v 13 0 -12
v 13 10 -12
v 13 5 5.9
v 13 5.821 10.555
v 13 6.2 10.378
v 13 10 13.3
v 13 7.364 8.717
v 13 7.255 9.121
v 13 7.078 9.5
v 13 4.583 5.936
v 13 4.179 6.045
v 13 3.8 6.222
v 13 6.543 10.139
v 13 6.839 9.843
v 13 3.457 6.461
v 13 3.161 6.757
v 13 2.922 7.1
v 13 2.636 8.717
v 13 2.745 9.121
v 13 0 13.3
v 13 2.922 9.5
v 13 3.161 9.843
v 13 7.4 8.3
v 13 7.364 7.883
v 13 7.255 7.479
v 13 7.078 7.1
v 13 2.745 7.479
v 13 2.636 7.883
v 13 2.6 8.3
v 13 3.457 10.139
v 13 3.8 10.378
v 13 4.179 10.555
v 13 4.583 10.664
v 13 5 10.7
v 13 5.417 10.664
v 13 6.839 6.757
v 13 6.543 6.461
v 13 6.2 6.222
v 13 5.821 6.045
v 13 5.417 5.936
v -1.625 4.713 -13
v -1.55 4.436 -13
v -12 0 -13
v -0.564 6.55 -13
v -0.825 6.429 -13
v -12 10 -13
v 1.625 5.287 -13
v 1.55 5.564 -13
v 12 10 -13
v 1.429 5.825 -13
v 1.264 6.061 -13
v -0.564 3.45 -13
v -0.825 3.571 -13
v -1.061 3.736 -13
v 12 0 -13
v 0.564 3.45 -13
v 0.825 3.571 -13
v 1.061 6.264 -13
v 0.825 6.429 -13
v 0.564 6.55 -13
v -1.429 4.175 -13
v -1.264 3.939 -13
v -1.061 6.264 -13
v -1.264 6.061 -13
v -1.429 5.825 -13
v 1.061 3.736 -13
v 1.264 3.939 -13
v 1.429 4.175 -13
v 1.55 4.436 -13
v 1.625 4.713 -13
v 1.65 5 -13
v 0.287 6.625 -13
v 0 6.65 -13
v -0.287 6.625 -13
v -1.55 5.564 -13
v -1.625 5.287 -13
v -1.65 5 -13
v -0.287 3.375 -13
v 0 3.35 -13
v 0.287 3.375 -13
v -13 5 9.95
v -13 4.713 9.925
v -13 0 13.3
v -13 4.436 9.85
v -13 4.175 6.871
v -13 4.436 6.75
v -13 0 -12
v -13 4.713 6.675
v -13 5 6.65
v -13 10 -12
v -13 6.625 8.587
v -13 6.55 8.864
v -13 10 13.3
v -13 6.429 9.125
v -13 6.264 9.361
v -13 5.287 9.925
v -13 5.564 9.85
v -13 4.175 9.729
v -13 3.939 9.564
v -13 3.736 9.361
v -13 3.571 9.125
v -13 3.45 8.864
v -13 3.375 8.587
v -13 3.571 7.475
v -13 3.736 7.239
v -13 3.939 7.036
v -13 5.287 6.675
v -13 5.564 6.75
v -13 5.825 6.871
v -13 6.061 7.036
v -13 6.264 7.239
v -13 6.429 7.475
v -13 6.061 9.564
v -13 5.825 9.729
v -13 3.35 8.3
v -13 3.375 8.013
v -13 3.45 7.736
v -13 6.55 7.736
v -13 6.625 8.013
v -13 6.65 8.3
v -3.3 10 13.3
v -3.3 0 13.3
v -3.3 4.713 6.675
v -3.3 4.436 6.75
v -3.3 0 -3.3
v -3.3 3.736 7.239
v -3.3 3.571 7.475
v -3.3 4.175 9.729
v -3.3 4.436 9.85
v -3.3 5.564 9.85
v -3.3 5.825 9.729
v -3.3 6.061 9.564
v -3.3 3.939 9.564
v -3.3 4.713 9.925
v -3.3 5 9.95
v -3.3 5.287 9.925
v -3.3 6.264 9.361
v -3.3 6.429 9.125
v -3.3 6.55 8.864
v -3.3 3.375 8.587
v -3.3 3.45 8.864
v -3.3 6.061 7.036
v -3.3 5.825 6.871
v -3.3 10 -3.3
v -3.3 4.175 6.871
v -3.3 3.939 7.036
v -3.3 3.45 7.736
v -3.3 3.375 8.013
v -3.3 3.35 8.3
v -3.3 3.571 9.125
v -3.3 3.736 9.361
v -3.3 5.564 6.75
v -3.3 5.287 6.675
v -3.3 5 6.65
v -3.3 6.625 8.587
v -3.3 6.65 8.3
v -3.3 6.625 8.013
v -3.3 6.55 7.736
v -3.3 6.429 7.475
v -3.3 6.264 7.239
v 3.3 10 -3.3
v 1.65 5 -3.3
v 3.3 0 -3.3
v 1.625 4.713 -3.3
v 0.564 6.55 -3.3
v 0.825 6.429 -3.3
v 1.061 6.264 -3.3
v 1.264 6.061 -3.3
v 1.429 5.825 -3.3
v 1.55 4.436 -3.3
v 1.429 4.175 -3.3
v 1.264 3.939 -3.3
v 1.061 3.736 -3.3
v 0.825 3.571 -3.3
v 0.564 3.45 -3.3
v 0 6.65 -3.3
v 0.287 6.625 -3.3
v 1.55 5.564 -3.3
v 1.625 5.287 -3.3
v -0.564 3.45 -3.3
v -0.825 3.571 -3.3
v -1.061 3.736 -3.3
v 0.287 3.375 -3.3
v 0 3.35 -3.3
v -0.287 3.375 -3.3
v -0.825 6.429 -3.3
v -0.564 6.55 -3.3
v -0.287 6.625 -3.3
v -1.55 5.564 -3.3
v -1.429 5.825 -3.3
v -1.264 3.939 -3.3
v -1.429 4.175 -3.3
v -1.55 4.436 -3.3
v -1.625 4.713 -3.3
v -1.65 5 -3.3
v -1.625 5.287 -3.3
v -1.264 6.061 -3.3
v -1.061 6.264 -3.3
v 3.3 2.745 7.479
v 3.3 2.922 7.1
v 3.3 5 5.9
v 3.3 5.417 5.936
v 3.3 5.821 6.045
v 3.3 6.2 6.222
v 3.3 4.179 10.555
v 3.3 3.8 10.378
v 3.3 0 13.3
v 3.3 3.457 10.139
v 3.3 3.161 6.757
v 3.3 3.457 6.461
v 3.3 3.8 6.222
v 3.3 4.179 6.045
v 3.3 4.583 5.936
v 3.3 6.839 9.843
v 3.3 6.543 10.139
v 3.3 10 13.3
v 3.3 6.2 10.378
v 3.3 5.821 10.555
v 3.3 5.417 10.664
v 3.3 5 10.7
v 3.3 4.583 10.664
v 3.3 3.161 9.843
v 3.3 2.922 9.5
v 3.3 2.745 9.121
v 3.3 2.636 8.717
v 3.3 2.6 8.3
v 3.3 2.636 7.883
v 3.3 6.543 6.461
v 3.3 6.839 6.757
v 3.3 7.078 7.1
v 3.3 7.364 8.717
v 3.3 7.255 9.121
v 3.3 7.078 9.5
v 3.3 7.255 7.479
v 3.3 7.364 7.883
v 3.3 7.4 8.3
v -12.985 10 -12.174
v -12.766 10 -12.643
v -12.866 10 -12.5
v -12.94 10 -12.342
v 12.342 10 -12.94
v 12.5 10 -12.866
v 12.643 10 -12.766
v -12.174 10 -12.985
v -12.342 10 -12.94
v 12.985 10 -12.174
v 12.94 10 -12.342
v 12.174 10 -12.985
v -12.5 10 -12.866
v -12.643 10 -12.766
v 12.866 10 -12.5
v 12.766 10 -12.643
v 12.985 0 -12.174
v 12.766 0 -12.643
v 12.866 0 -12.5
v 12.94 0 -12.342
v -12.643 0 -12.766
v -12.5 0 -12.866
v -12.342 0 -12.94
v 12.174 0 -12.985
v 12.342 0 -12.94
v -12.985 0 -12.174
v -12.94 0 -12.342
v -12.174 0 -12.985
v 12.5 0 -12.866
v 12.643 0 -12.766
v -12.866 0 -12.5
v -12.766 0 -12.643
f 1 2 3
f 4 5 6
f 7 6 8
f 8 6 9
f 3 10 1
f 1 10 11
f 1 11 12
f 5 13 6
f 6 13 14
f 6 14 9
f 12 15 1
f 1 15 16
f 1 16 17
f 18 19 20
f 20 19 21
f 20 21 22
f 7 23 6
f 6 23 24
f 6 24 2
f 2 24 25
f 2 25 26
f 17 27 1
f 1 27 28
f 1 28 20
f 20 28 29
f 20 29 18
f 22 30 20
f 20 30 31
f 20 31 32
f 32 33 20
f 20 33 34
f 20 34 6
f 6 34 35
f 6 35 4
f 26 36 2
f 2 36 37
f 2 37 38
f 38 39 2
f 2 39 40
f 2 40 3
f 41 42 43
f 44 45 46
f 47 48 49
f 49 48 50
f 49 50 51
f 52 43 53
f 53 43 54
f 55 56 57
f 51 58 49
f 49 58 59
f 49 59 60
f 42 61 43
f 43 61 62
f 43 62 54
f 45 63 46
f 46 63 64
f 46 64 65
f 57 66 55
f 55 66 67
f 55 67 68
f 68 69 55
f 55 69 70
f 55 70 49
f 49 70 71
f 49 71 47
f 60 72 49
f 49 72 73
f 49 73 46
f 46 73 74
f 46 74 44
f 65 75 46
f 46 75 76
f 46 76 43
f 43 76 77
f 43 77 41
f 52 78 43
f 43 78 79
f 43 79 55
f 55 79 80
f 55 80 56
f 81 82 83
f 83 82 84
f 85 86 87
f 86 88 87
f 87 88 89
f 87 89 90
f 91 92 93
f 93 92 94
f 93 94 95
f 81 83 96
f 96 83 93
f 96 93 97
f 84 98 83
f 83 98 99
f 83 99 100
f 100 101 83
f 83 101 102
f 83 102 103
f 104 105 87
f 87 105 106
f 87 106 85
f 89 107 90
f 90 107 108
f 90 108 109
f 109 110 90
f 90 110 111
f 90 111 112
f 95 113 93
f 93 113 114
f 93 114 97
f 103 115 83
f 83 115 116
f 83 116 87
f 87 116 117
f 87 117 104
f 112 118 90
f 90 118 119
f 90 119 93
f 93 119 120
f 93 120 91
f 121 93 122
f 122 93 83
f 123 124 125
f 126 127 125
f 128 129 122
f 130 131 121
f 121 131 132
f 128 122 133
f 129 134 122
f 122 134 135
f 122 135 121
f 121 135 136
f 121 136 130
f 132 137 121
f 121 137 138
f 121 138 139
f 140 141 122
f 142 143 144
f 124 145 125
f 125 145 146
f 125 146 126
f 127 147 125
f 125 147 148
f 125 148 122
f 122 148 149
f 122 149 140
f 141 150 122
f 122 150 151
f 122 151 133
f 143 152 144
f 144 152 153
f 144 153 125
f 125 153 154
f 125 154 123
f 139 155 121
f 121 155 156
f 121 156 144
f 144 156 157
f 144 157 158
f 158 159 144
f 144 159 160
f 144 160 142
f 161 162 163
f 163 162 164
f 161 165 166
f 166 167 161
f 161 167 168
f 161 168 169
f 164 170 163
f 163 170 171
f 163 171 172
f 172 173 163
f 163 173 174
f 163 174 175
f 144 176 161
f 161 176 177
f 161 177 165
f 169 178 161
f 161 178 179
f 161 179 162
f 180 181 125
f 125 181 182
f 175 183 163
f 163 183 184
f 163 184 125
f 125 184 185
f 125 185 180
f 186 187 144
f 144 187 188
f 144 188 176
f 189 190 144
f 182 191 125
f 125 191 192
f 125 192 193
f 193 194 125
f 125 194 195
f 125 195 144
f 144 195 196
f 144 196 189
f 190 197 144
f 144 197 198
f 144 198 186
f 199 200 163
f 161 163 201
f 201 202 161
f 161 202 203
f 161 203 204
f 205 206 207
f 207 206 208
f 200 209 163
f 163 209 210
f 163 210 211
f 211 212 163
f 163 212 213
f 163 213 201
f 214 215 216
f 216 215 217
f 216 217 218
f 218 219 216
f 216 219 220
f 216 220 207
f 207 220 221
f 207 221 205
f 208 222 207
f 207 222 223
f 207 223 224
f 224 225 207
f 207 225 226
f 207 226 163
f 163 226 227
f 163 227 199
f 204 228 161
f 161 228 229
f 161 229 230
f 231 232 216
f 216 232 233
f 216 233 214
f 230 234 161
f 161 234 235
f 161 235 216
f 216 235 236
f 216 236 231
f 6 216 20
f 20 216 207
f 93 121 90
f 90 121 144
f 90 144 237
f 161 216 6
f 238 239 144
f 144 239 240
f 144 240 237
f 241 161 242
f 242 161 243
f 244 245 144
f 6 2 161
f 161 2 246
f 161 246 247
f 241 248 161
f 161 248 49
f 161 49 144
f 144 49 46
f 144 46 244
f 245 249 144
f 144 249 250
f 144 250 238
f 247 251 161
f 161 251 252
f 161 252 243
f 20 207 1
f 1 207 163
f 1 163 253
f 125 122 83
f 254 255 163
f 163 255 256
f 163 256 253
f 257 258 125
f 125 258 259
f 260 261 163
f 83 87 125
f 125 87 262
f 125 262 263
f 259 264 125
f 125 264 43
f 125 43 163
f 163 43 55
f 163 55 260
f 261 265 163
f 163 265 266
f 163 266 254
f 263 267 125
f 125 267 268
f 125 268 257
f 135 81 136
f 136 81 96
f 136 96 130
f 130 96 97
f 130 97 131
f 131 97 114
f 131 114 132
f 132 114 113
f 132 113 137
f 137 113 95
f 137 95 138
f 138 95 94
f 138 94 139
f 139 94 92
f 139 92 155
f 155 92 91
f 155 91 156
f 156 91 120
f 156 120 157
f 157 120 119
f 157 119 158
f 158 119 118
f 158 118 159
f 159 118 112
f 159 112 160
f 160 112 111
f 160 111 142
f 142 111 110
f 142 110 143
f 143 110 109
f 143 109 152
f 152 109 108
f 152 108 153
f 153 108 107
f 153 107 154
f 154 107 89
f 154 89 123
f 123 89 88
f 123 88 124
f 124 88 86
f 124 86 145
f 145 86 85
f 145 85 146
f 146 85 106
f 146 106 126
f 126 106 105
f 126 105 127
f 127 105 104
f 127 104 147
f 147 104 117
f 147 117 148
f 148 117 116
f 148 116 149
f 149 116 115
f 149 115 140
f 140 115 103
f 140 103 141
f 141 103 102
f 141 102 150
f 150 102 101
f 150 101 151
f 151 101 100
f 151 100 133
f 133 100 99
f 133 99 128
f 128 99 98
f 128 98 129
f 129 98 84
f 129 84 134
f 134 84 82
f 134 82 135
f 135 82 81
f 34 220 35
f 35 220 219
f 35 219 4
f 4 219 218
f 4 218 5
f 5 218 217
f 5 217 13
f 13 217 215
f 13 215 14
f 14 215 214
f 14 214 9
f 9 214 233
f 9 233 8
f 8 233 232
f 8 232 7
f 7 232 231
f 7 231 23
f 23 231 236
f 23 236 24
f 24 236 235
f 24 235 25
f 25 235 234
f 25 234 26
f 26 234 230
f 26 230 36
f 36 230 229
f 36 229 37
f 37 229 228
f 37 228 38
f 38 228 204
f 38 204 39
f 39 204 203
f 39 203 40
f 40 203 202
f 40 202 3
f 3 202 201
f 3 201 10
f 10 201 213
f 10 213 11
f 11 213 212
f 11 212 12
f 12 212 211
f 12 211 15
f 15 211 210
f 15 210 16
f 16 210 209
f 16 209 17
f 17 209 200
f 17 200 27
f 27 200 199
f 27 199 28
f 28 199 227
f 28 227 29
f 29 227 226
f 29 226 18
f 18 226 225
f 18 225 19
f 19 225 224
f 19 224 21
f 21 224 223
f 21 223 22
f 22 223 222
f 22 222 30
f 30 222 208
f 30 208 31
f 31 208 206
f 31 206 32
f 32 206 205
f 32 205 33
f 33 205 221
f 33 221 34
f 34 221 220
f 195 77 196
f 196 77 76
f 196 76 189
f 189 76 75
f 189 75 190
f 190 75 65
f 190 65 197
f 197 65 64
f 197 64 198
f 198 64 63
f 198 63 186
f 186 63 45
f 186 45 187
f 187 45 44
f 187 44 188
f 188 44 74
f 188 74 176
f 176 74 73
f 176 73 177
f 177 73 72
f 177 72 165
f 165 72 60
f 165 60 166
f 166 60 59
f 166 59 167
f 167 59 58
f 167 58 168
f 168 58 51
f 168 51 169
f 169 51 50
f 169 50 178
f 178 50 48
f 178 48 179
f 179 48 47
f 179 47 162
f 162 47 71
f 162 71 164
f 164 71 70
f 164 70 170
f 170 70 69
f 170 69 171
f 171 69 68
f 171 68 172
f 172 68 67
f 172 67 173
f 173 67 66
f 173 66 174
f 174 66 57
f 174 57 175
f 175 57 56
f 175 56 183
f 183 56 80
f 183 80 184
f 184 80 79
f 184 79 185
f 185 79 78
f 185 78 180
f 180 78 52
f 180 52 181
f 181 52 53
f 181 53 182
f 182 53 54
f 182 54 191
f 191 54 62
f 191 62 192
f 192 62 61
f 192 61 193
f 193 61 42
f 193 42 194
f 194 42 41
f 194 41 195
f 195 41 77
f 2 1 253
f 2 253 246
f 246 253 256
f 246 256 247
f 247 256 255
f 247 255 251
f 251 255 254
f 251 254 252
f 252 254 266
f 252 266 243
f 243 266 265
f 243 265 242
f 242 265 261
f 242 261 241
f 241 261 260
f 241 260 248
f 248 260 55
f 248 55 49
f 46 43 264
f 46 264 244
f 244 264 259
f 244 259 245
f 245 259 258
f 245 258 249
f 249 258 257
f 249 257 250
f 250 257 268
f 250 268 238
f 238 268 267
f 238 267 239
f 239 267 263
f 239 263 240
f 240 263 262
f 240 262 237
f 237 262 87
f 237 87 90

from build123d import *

# Parameters (mm, degrees)
BOSS_EXTRUDE1_DEPTH             = 10
TAP_DRILL_FOR_M4X0_7_TAP1_D     = 3.3
TAP_DRILL_FOR_M4X0_7_TAP1_DEPTH = 9.7
SKETCH5_W                       = 2.4
SKETCH5_H                       = 9.7
TAP_DRILL_FOR_M4X0_7_TAP2_D     = 3.3
FILLET1_R                       = 1


with BuildPart() as part:
    # Sketch1 → Boss-Extrude1 (new body)
    with BuildSketch(Plane(origin=(0, 0, 0), x_dir=(1, 0, 0), z_dir=(0, 1, 0))):
        Polygon((-3.3, 3.3), (-3.3, -13.3), (-13, -13.3), (-13, 13), (13, 13), (13, -13.3), (3.3, -13.3), (3.3, 3.3), align=None)
    extrude(amount=BOSS_EXTRUDE1_DEPTH)

    # Tap Drill for M4x0.7 Tap1
    with Locations(Plane(origin=(-13, 5, 8.3), x_dir=(0, 0, -1), z_dir=(-1, 0, 0))):
        with Locations((0, 0)):
            Hole(TAP_DRILL_FOR_M4X0_7_TAP1_D / 2, depth=TAP_DRILL_FOR_M4X0_7_TAP1_DEPTH)

    # Sketch5 → M4 Clearance Hole1 (revolve, cut)
    with BuildSketch(Plane(origin=(3.3, 5, 8.3), x_dir=(0, 0, 1), z_dir=(0, 1, 0))):
        with Locations((1.2, 4.85)):
            Rectangle(SKETCH5_W, SKETCH5_H)
    revolve(axis=Axis((-3.05, 5, 8.3), (1, 0, 0)), mode=Mode.SUBTRACT)

    # Tap Drill for M4x0.7 Tap2 (through all)
    with Locations(Plane(origin=(0, 5, -13), x_dir=(-1, 0, 0), z_dir=(0, 0, -1))):
        with Locations((0, 0)):
            Hole(TAP_DRILL_FOR_M4X0_7_TAP2_D / 2)

    # Fillet1
    fillet1_edges = [part.edges().sort_by_distance(p)[0] for p in [
        (-13, 5, -13),
        (13, 5, -13),
    ]]
    fillet(fillet1_edges, radius=FILLET1_R)


solid = part.part
